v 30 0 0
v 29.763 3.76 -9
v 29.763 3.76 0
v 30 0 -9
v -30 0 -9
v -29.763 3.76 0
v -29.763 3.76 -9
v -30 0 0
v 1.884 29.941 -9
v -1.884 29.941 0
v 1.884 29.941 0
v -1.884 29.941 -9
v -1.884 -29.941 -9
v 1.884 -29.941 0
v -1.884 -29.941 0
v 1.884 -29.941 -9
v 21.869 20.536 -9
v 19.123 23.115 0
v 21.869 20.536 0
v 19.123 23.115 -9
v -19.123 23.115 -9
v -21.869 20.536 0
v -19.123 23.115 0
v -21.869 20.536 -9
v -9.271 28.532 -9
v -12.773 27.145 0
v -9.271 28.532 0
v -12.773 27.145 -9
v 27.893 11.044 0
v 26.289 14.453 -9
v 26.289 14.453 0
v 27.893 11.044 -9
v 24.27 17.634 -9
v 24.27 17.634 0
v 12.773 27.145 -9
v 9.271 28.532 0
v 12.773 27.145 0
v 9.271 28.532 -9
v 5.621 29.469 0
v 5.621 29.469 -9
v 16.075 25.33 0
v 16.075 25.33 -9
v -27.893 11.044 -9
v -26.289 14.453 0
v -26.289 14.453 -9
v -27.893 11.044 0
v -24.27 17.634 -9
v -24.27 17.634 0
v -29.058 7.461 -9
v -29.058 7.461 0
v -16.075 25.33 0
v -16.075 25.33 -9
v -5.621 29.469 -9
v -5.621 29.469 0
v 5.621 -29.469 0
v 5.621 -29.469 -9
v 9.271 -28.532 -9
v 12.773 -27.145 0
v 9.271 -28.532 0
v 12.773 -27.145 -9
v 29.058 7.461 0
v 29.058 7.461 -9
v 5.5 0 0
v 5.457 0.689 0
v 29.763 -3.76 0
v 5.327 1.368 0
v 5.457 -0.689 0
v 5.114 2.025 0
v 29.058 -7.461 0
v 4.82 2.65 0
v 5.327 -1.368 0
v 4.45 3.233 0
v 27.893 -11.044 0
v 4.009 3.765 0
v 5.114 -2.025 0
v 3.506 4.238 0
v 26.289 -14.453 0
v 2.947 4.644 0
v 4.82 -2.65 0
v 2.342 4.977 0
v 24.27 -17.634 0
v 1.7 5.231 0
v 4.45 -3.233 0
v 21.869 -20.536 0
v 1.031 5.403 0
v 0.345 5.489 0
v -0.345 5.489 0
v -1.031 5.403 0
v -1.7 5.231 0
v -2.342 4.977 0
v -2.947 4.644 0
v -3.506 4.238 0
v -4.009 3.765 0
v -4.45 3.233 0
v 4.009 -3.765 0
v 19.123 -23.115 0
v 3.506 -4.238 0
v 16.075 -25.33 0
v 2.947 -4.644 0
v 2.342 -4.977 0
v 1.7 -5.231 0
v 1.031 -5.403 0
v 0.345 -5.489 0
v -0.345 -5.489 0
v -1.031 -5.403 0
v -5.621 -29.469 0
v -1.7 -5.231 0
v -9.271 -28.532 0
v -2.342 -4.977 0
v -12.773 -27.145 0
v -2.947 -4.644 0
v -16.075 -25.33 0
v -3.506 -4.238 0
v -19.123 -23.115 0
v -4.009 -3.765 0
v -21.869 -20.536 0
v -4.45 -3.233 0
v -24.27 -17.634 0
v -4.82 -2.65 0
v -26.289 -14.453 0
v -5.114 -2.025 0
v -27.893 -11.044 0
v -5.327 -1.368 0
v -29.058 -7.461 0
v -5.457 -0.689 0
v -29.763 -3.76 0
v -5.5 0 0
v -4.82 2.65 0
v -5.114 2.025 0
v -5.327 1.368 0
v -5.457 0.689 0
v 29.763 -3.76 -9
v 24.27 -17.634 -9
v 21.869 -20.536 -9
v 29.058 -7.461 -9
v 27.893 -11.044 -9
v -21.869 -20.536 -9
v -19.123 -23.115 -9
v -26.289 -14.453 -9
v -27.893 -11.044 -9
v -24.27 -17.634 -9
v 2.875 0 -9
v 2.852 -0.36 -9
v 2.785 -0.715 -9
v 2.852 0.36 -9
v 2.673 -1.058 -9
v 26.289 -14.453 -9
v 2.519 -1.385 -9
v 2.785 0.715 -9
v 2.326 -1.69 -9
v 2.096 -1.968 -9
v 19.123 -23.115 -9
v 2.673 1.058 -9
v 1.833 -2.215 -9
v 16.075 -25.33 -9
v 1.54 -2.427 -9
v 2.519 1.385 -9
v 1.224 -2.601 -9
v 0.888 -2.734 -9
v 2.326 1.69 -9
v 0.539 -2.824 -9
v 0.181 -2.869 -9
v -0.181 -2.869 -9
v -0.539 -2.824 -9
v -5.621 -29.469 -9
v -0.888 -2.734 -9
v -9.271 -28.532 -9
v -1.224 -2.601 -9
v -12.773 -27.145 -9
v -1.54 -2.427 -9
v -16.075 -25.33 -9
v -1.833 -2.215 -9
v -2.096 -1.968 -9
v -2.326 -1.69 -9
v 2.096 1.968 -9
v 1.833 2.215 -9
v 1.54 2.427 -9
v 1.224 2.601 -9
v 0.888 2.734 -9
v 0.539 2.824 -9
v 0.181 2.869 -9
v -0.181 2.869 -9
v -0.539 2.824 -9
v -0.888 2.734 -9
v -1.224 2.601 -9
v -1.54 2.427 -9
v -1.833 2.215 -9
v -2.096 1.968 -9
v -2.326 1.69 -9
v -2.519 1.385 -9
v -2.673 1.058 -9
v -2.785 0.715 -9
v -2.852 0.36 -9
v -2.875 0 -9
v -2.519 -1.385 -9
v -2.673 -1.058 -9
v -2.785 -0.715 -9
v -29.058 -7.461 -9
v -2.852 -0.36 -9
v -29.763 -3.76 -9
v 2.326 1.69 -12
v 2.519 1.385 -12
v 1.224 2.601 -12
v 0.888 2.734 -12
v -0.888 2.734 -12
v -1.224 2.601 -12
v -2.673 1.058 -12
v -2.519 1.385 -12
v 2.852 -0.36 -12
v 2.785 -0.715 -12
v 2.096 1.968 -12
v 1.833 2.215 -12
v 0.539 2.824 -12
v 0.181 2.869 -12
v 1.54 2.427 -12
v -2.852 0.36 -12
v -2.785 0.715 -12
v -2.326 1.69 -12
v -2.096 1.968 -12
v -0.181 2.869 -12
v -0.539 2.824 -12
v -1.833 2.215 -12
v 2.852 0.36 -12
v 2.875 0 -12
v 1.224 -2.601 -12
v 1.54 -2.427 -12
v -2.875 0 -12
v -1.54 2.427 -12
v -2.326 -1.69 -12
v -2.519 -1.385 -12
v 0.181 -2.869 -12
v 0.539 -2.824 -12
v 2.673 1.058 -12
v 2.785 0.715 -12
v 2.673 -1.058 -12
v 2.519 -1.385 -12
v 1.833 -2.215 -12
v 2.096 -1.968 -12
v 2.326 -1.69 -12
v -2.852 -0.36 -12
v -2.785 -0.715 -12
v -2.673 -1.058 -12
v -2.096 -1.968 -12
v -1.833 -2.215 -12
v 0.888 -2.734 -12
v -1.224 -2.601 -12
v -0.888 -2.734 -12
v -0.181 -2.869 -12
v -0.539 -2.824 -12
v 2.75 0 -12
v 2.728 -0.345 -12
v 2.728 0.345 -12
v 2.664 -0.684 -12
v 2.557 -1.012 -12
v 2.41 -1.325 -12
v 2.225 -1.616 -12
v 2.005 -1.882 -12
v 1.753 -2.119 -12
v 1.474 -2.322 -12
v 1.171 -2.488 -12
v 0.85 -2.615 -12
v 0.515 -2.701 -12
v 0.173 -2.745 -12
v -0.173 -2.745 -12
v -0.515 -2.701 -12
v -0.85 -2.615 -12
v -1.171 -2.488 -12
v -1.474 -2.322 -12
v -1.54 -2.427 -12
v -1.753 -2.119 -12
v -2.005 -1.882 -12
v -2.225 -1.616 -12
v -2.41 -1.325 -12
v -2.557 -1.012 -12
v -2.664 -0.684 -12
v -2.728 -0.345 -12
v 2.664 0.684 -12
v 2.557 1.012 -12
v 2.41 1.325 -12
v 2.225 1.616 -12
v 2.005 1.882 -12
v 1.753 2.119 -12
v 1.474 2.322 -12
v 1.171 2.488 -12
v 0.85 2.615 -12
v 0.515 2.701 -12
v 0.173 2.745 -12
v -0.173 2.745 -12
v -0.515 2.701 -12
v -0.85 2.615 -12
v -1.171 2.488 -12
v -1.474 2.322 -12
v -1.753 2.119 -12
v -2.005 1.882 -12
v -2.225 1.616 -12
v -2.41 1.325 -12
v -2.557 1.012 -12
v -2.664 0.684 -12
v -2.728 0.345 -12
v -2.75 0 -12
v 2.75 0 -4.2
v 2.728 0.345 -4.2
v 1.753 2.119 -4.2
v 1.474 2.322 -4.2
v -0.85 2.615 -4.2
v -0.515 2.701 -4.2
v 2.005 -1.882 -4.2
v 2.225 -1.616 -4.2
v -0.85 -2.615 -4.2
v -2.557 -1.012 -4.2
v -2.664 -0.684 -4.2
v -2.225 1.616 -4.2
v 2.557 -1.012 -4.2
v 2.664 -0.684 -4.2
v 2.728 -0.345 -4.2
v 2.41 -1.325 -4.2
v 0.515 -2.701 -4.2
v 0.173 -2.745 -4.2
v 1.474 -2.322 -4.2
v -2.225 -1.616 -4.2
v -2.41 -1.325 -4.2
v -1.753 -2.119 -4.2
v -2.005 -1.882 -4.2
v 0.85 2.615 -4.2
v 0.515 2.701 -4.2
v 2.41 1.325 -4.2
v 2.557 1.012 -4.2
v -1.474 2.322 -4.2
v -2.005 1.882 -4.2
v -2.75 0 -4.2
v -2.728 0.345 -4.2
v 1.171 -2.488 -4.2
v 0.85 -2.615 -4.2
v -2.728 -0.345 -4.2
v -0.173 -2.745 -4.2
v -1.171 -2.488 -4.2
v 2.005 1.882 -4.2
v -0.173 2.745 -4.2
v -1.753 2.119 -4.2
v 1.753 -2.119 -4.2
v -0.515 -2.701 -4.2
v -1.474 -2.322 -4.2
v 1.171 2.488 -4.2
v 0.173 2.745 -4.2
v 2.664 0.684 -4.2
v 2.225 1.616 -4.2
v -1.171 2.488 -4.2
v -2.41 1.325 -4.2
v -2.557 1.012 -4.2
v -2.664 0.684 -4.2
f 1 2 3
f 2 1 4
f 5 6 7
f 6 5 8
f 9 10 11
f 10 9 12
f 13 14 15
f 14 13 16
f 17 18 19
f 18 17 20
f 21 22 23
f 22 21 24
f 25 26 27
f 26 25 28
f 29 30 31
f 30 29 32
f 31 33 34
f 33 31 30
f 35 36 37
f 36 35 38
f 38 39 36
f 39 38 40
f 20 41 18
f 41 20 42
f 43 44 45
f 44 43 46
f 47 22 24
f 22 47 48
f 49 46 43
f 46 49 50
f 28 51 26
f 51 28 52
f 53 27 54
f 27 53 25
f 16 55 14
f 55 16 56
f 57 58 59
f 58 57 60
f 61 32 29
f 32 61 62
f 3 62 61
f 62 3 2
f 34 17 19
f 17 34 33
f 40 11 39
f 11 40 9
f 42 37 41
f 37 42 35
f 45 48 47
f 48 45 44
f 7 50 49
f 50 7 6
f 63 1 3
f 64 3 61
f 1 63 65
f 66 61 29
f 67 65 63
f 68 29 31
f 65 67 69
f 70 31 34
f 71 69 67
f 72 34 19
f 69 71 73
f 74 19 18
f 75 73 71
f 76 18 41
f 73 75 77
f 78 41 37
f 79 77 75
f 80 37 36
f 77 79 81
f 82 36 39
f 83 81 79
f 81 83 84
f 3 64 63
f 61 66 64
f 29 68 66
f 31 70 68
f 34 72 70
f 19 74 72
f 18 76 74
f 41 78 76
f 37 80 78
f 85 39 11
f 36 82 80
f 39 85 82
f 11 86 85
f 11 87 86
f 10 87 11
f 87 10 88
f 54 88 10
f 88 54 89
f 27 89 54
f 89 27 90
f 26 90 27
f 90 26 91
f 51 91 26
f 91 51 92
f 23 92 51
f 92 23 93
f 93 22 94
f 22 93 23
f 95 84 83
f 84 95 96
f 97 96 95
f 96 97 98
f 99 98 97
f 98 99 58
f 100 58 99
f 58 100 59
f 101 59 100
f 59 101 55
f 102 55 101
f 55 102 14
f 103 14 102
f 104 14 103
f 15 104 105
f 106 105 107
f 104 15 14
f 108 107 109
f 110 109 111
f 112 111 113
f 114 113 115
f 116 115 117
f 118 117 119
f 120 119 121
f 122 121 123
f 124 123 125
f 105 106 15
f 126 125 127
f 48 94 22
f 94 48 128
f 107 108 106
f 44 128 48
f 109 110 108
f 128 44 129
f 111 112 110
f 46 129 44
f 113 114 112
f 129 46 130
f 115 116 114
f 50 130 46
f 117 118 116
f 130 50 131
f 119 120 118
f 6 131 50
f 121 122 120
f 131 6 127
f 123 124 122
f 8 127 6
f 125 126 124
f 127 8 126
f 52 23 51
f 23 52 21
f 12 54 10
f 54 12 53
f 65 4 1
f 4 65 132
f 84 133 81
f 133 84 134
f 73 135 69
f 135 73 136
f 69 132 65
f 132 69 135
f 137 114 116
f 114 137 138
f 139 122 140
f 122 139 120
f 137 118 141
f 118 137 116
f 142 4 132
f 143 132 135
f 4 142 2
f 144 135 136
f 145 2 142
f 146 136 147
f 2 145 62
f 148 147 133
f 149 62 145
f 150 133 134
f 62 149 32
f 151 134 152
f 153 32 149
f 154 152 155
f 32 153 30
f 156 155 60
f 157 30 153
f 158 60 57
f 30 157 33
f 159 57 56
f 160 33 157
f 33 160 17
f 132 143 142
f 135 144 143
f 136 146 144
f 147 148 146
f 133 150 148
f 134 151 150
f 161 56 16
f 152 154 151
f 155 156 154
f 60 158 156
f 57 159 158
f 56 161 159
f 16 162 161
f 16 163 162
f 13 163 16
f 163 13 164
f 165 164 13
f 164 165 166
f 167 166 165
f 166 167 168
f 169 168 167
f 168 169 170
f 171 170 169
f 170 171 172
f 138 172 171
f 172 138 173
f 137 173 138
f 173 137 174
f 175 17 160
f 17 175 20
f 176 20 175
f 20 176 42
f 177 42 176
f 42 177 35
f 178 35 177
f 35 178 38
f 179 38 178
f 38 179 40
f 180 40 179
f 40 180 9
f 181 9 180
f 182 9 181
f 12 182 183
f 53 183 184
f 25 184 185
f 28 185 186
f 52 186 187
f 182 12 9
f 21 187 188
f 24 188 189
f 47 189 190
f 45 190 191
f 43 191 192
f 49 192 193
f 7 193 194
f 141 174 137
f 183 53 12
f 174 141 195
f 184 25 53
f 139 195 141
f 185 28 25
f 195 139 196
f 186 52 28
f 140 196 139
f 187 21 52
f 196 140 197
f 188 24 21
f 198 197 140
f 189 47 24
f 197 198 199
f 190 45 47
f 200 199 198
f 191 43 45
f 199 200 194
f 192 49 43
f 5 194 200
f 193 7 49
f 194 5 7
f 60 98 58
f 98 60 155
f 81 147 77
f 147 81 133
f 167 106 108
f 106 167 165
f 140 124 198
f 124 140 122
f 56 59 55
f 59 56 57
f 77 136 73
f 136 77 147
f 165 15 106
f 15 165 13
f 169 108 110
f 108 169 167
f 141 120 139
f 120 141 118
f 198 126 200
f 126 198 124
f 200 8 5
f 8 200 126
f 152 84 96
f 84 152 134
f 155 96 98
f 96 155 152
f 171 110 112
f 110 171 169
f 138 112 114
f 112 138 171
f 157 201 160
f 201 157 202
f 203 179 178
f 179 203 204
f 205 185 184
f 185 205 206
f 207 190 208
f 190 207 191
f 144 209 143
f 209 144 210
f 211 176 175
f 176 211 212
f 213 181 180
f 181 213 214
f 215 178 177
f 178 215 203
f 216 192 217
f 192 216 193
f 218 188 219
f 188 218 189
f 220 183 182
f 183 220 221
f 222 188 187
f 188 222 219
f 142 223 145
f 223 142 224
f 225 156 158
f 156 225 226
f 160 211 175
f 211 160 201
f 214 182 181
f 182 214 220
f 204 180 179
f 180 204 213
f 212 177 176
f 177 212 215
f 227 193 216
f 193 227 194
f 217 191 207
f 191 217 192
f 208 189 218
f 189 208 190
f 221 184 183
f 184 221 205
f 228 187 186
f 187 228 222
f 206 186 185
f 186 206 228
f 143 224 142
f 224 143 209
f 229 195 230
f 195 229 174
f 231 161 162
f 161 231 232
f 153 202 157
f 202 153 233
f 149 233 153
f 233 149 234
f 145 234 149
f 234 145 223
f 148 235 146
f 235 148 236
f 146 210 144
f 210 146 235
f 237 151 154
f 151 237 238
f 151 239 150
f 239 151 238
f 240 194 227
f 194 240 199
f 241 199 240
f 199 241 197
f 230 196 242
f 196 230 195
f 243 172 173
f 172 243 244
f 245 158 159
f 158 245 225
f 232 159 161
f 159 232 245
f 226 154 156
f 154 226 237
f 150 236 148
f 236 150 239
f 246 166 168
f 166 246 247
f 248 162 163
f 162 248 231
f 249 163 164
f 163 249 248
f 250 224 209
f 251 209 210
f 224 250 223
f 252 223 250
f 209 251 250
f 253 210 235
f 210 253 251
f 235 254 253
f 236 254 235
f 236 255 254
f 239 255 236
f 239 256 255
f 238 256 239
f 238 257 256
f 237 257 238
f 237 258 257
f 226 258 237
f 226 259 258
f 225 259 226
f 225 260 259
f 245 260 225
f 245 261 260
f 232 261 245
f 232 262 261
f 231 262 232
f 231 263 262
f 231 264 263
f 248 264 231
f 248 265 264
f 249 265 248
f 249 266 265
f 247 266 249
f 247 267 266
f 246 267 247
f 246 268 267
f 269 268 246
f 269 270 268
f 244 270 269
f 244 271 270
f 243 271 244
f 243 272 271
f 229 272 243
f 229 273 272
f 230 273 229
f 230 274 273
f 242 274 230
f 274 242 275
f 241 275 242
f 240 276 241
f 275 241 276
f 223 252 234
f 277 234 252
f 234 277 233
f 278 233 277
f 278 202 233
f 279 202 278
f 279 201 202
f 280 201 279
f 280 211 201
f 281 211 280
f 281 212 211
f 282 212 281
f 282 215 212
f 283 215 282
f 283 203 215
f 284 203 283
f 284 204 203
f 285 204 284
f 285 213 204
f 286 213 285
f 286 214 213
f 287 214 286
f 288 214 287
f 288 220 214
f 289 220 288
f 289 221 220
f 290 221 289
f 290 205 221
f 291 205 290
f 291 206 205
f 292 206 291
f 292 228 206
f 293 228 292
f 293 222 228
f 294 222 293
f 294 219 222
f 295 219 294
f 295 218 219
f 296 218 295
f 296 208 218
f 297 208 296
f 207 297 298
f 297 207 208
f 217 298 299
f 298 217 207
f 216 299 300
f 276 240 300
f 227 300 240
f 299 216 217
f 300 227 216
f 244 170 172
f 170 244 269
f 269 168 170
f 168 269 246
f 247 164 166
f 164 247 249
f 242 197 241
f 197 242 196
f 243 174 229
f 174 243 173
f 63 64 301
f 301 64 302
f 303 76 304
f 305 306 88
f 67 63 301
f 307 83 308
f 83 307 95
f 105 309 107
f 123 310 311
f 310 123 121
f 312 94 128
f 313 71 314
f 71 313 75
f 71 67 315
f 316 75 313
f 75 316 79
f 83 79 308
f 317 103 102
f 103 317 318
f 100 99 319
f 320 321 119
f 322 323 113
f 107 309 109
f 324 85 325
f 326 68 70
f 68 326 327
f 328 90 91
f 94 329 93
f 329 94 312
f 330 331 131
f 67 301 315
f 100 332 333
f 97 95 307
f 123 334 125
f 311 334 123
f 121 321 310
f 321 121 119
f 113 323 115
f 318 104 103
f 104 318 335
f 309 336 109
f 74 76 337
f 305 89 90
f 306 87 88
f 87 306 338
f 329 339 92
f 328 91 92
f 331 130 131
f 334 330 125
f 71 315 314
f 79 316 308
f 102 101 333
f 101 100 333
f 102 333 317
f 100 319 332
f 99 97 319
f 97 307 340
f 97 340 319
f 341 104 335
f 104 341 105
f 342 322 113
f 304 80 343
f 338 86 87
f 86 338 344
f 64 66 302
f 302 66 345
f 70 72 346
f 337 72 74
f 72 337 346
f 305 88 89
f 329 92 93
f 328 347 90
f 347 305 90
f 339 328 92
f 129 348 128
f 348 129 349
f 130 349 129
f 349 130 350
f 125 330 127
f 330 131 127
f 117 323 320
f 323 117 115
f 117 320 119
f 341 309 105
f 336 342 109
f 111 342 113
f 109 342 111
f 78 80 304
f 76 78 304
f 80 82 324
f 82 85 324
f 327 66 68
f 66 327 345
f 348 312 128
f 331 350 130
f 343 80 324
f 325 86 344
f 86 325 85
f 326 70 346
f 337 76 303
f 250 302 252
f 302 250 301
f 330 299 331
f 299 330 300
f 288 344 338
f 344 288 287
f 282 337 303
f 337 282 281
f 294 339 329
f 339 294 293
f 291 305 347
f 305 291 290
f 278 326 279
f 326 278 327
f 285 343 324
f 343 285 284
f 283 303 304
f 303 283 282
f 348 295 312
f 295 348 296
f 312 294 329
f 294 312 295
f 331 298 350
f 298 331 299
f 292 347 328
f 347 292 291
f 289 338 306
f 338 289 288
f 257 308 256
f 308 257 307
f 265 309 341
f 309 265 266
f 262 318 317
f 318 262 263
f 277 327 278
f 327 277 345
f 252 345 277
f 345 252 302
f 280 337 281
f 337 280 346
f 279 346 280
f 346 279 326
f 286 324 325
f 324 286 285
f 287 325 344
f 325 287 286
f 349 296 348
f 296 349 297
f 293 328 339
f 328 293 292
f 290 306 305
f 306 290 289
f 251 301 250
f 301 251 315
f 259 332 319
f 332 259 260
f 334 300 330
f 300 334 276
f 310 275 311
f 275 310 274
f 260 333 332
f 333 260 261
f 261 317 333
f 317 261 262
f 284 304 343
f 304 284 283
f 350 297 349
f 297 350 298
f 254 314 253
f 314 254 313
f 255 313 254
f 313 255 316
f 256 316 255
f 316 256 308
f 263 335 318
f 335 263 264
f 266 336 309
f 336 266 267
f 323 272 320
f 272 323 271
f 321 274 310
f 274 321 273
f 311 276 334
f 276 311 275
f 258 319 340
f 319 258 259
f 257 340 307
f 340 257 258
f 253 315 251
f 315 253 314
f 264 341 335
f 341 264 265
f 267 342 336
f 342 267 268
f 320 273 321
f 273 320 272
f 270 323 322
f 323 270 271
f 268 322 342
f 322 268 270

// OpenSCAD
$fn = 50;


difference() {
	union() {
		translate(v = [0, 0, -9.0000000000]) {
			cylinder(h = 9, r = 30.0000000000);
		}
		#translate(v = [0, 0, -12.0000000000]) {
			cylinder(h = 12, r = 2.8750000000);
		}
	}
	union() {
		translate(v = [0, 0, 0]) {
			rotate(a = [0, 0, 0]) {
				difference() {
					union() {
						translate(v = [0, 0, -12.0000000000]) {
							cylinder(h = 12, r = 2.2500000000);
						}
						translate(v = [0, 0, -4.2000000000]) {
							cylinder(h = 4.2000000000, r1 = 2.7500000000, r2 = 5.5000000000);
						}
						translate(v = [0, 0, -12.0000000000]) {
							cylinder(h = 12, r = 2.7500000000);
						}
						translate(v = [0, 0, -12.0000000000]) {
							cylinder(h = 12, r = 2.2500000000);
						}
					}
					union();
				}
			}
		}
	}
}
